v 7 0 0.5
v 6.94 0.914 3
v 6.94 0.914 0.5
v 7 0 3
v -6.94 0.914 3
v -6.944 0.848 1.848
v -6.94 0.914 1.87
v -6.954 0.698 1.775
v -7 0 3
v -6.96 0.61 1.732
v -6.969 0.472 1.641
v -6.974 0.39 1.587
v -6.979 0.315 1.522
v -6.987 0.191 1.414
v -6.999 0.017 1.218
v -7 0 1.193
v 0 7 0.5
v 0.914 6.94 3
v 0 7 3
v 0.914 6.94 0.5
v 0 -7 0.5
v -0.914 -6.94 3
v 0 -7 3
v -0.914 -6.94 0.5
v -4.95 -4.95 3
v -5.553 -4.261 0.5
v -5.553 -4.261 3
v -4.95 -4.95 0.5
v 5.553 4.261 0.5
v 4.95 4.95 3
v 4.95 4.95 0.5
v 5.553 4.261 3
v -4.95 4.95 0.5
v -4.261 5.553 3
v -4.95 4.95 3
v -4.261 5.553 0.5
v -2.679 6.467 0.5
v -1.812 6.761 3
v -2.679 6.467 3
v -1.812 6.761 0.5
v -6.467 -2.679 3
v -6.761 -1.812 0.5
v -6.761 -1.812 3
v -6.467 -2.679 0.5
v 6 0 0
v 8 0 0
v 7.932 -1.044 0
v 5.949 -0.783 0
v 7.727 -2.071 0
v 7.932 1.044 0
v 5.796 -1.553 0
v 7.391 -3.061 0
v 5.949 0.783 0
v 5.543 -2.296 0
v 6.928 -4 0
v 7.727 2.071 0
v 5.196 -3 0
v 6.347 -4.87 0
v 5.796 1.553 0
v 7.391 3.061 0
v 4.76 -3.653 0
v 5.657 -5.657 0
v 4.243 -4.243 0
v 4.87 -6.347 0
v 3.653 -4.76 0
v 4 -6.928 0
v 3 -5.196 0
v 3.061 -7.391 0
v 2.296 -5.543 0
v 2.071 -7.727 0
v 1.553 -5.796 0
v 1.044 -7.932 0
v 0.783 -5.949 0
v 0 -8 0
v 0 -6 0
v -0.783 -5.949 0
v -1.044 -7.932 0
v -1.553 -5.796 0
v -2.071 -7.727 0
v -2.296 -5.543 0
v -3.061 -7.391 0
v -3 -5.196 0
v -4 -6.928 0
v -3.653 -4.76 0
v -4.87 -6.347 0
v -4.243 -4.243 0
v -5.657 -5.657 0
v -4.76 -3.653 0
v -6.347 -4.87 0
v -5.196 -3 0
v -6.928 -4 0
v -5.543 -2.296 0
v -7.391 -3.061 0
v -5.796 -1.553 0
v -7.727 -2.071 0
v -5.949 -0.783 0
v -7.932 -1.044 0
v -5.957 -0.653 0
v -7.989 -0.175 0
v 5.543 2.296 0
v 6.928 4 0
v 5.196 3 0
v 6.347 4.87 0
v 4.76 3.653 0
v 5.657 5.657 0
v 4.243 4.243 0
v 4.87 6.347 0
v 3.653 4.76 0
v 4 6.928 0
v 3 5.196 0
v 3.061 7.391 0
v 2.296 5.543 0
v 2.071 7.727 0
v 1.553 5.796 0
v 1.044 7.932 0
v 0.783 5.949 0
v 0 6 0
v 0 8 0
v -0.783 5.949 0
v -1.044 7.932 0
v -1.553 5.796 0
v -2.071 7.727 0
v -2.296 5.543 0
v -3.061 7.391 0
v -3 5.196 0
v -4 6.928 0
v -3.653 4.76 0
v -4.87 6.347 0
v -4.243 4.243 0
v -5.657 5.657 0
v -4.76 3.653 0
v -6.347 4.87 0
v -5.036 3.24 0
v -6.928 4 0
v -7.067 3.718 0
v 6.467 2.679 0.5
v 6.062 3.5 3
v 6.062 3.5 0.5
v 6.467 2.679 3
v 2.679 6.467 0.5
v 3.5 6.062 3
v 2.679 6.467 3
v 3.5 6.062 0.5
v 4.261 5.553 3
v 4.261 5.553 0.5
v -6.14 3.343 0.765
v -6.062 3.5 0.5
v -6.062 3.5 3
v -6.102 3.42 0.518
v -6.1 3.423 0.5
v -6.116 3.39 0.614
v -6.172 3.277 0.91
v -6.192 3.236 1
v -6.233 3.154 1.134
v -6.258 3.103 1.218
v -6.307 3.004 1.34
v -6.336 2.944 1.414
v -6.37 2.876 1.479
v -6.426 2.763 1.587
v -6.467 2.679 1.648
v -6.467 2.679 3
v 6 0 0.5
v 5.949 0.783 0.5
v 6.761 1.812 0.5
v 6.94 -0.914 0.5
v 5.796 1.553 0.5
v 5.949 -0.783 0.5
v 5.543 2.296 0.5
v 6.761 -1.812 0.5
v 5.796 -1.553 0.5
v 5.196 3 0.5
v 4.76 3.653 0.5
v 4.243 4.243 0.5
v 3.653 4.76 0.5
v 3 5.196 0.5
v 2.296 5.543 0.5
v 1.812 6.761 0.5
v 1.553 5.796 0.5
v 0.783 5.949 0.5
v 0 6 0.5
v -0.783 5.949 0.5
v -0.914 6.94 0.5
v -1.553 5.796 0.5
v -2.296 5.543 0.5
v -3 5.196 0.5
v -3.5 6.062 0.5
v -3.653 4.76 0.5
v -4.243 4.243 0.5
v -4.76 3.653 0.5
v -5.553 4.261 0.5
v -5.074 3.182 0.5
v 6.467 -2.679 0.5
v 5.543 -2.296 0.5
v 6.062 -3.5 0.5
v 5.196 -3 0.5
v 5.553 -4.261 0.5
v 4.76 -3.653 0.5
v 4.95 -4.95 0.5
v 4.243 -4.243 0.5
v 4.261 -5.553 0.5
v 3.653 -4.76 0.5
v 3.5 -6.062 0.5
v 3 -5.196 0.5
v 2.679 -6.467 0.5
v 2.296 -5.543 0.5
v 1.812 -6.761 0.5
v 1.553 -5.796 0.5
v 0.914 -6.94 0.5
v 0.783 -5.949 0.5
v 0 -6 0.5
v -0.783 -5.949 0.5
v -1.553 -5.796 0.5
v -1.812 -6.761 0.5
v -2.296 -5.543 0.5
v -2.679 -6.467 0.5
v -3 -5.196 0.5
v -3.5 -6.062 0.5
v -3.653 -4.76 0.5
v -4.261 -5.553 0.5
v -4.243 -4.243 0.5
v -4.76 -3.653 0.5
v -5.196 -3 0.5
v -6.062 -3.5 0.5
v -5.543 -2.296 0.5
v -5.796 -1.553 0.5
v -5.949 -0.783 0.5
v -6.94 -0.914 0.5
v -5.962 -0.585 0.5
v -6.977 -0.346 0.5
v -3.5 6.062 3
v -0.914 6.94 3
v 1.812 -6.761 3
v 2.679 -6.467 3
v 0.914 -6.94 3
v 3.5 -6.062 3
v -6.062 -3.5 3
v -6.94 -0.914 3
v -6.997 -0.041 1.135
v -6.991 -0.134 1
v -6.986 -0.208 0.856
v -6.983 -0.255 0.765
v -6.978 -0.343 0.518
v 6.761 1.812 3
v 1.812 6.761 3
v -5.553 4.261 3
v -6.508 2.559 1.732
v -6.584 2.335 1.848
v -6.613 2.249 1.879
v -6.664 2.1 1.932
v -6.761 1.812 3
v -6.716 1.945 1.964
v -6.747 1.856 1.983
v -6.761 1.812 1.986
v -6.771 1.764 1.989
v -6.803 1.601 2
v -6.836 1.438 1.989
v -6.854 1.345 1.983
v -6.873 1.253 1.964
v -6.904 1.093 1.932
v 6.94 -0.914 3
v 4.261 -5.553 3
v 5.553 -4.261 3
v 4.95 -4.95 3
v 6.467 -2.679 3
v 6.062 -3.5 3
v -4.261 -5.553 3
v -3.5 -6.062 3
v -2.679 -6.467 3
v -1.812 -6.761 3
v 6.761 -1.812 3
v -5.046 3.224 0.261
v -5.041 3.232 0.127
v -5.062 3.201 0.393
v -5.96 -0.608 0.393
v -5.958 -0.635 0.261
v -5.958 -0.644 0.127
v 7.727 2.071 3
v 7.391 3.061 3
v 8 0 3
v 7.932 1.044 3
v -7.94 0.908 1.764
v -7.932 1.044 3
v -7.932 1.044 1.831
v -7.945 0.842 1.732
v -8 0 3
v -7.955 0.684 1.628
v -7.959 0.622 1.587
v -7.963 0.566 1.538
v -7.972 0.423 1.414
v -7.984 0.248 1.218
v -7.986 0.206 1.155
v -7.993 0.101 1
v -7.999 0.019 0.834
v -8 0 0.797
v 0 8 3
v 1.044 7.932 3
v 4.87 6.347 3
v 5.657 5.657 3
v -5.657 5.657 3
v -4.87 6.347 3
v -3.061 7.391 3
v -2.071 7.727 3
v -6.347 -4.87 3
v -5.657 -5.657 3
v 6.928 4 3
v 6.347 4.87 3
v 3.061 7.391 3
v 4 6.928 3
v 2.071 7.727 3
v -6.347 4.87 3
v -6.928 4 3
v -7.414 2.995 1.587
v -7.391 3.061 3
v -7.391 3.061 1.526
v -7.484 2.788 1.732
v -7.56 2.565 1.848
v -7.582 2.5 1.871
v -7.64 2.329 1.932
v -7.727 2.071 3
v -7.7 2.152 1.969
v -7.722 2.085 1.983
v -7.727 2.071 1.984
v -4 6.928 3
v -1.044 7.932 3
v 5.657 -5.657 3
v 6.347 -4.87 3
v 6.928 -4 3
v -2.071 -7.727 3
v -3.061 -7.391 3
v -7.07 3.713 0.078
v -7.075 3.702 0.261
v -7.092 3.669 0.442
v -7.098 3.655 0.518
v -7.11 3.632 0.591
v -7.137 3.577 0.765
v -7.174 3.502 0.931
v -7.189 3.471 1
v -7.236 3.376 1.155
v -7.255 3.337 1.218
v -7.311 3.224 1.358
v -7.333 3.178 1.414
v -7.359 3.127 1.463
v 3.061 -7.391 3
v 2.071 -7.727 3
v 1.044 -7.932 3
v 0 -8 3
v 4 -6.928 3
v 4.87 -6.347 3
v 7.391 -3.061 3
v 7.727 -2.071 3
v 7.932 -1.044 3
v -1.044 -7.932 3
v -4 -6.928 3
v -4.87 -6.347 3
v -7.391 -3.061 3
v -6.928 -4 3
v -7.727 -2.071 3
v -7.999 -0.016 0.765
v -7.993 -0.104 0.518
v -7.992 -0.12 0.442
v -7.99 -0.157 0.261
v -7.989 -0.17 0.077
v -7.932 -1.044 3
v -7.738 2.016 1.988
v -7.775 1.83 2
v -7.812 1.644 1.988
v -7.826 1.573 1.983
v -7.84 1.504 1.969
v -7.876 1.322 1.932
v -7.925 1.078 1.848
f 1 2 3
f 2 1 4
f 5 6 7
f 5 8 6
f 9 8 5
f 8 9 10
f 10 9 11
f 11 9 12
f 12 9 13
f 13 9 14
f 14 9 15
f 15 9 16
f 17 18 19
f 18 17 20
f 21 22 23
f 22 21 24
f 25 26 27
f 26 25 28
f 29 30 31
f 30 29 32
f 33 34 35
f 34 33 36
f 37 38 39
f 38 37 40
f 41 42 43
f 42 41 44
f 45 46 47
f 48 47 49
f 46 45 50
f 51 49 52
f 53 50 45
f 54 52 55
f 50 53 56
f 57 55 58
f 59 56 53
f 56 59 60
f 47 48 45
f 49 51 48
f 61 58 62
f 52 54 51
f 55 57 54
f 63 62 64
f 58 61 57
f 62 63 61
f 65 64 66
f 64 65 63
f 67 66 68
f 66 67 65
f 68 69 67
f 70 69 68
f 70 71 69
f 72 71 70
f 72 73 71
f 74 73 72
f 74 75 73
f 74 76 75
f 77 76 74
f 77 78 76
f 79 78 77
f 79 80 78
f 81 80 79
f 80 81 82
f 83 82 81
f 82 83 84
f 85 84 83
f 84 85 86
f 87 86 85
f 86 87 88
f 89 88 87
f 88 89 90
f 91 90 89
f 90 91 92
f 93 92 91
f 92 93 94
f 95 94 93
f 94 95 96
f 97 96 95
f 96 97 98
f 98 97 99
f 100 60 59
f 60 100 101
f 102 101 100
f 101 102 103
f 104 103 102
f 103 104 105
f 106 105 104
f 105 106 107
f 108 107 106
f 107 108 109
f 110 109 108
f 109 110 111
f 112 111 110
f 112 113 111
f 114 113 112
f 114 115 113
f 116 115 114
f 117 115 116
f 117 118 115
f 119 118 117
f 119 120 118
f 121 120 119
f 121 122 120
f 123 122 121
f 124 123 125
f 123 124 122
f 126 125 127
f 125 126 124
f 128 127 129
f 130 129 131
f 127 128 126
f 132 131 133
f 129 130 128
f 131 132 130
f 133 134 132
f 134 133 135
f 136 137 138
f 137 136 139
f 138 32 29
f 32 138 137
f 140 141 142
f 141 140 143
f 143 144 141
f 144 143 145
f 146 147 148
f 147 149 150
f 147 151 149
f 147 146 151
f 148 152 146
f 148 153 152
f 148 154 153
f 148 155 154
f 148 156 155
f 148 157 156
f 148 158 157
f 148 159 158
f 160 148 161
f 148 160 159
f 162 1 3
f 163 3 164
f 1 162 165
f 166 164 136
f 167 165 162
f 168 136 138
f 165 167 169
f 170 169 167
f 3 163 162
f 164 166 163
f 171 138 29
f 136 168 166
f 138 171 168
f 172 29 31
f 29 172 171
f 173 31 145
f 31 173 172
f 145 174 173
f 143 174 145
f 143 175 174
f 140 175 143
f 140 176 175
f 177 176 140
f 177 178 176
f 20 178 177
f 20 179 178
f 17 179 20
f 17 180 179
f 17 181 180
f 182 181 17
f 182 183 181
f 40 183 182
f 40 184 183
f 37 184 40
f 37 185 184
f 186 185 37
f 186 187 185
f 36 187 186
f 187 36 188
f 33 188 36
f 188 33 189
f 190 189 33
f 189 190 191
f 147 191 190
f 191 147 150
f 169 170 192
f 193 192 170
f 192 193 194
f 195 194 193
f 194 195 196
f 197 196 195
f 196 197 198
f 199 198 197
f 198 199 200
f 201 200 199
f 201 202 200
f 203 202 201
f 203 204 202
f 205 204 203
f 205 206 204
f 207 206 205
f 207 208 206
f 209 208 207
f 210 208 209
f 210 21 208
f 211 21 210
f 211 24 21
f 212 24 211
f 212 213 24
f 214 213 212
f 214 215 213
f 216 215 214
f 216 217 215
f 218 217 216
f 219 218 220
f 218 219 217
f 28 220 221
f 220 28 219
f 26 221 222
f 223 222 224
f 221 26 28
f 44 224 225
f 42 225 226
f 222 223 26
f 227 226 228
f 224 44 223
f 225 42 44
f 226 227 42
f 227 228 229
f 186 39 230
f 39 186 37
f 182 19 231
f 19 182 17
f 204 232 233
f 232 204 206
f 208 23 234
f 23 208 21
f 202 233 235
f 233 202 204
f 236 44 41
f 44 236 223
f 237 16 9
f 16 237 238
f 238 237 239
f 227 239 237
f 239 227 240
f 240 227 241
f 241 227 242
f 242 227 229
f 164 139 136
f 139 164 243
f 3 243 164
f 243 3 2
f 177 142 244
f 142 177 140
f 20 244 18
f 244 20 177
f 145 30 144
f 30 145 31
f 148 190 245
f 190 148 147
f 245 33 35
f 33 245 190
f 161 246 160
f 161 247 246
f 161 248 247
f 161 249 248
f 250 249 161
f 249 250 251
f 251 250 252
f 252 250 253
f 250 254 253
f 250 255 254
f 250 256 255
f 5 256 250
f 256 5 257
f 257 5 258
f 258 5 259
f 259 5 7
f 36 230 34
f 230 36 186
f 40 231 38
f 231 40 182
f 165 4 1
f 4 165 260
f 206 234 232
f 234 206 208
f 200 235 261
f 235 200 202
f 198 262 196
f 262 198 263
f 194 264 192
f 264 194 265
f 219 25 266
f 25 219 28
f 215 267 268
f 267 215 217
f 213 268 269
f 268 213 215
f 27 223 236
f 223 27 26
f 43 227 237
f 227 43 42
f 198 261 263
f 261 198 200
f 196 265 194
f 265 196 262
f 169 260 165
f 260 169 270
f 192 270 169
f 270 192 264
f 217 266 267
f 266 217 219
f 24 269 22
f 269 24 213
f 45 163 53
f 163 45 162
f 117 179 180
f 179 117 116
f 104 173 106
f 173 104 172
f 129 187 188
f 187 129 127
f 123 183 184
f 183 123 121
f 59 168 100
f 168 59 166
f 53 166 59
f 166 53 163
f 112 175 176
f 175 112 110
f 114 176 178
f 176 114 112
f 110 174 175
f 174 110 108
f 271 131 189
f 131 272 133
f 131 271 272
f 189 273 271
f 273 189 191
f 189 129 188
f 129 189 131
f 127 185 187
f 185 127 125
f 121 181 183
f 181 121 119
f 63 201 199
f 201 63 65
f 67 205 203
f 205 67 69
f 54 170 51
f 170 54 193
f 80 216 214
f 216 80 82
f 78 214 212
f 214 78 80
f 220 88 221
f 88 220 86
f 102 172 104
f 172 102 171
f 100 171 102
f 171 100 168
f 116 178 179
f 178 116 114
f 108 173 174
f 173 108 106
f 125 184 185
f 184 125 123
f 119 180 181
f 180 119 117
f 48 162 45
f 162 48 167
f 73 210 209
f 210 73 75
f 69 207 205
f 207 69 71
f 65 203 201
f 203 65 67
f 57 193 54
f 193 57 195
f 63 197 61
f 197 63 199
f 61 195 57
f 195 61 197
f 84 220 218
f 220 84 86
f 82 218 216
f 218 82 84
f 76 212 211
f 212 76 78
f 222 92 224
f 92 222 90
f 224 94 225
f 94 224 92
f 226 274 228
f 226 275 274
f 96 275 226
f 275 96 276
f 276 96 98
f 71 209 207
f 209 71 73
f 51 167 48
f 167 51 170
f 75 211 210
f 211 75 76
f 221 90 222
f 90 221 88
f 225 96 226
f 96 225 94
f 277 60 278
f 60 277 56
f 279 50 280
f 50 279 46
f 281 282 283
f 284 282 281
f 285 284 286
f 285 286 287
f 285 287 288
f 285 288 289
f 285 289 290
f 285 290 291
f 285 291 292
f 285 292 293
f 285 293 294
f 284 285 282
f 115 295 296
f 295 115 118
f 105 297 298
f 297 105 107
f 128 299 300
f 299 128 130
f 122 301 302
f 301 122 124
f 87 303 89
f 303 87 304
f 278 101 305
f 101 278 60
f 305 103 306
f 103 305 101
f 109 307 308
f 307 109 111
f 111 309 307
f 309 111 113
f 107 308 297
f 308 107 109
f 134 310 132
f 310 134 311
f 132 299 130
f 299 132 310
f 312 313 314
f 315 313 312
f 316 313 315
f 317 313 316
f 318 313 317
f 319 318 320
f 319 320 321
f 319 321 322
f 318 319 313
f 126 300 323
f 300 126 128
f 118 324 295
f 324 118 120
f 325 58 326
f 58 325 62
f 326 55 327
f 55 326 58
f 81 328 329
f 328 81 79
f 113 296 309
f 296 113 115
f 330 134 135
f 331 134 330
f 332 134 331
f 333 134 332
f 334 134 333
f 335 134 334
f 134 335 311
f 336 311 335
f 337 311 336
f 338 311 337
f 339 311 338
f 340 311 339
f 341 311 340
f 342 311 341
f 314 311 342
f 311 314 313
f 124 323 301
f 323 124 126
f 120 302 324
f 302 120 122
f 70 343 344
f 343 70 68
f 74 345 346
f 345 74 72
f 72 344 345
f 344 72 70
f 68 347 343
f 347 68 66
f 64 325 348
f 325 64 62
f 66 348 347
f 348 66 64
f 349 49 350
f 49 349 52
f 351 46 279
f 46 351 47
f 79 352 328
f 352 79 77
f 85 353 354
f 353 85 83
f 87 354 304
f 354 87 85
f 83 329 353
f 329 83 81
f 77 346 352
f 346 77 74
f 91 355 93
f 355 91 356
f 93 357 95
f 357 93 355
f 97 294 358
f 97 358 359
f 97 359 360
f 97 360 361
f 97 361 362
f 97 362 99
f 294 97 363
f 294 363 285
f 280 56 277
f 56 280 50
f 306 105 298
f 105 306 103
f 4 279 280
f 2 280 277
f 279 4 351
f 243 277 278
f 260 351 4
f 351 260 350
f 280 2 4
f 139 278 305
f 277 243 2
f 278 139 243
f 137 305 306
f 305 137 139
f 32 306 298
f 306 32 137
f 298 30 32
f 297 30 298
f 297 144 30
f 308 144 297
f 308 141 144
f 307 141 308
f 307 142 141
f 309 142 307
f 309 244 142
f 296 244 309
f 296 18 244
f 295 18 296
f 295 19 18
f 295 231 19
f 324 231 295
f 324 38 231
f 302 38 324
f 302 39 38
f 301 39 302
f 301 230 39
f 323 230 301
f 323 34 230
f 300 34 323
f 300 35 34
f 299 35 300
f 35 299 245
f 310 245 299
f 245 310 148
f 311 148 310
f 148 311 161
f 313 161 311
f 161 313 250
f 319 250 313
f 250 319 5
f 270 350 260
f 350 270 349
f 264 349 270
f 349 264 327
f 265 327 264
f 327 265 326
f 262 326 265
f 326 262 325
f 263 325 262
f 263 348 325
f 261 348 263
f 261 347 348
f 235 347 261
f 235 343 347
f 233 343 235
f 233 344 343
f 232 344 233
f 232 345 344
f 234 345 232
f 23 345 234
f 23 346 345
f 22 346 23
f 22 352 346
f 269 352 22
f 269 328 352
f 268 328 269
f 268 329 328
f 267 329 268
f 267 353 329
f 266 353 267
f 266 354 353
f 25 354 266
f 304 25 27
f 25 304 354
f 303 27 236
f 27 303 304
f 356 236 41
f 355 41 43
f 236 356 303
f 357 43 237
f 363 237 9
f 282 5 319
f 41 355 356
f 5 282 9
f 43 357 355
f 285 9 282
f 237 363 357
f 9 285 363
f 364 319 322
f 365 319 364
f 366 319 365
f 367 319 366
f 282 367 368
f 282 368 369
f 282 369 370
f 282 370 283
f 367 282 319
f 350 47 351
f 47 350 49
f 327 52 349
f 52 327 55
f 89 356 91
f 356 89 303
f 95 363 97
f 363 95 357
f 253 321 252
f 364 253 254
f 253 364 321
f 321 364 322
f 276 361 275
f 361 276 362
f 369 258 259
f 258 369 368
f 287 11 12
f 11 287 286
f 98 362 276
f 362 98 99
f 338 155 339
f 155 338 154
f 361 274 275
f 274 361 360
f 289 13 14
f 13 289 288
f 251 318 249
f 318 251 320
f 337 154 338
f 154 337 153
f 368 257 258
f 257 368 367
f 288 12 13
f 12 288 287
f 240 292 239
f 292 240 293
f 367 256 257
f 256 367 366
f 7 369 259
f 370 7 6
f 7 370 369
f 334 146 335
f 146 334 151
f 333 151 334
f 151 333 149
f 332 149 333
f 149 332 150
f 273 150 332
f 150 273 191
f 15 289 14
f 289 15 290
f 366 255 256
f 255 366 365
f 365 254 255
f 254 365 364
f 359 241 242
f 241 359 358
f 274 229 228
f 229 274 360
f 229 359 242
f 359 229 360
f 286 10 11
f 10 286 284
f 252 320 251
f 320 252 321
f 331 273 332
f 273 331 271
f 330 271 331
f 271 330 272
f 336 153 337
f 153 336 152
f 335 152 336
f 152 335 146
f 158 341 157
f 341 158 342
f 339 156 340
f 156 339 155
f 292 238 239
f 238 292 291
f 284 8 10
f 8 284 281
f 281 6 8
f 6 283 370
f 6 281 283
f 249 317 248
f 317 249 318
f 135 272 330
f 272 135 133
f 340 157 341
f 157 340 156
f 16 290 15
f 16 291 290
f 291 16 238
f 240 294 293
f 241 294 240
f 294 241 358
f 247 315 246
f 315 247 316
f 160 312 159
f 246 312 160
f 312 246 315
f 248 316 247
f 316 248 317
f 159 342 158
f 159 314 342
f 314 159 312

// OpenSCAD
// file: ../build_environments.scad
// build_environments.scad: modules to build level sections
//

module pool(diameter=10.0, wall_height=2.0, step_width=3.0, connections=[])
{
    difference() {
        union() {
        difference() {
            cylinder(h=0.5,r1=diameter+step_width,r2=diameter+step_width,$fn=48);
            translate([0,0,-0.1])
                cylinder(h=0.7,r1=diameter,r2=diameter,$fn=48);
        }
        difference() {
            cylinder(h=wall_height,r1=diameter+step_width+1.0,r2=diameter+step_width+1.0,$fn=48);
            translate([0,0,-0.1])
                cylinder(h=wall_height+0.2,r1=diameter+step_width,r2=diameter+step_width,$fn=48);
        }
        }
    
        for (c = connections)
        {
            rotate([0,90,0]) {
                angle = atan2(c[1],c[0]);
                rotate([-angle,0,0]) {
                    cylinder(h=diameter+5.0,r1=c[2],r2=c[2],$fn=48);
                }
            }
        }
    }
}

module straight(length=10.0, width=2.0, dy1=0.0, dy2=0.0, dz=0.0)
{
    dims = [0, 0, 0, 0, 0, (dz/length)];
    matrix = [
        [ 1, dims[0], dims[1], 0 ],
        [ dims[2], 1, dims[4], 0 ],
        [ dims[5], dims[3], 1, 0 ],
        [ 0, 0, 0, 1 ]
    ];
    multmatrix(matrix)
    difference() {
        translate([dy1,0,0])
        union() {
            rotate([0,90,0]) {
                difference() {
                    cylinder(h=(length-dy1-dy2),r1=width+1.0,r2=width+1.0,$fn=24);
                    translate([0,0,-0.1])
                        cylinder(h=(length-dy1-dy2+0.2),r1=width,r2=width,$fn=24);
                }
                difference() {
                    cylinder(h=1.0,r1=width+2.0,r2=width+2.0,$fn=24);
                    translate([0,0,-0.1])
                        cylinder(h=1.2,r1=width,r2=width,$fn=24);
                }
                translate([0,0,(length-dy1-dy2)-1.0]) {
                    difference() {
                        cylinder(h=1.0,r1=width+2.0,r2=width+2.0,$fn=24);
                        translate([0,0,-0.1])
                            cylinder(h=1.2,r1=width,r2=width,$fn=24);
                    }
                }
            }
        }
        translate([0,0,-(2*width+4.0)/2])
            cube([3*length,3*length,2*width+4.0],center=true);
    }
}

module curve(p0=[0,0], center=[0,0], dir=1, angle=0.0, width=2.0)
{
    radius = sqrt((p0[0]-center[0])*(p0[0]-center[0]) + (p0[1]-center[1])*(p0[1]-center[1]));
    if (dir == 0) {
        difference() {
            rotate([0,0,-90])
            difference() {
                rotate_extrude(angle = angle, convexity = 10, $fn=32)
                    translate([radius, 0, 0])
                        circle(r = width+1.0,$fn=24);
                rotate([0,0,-1.0])
                    rotate_extrude(angle = angle+2.0, convexity = 10, $fn=32)
                        translate([radius, 0, 0])
                            circle(r = width,$fn=24);
            }
            translate([0,0,-(2*width+4.0)/2])
                cube([5*radius,5*radius,2*width+4.0],center=true);
        }
    }
    else {
        difference() {
            rotate([0,0,90])
            difference() {
                rotate_extrude(angle = -angle, convexity = 10, $fn=32)
                    translate([radius, 0, 0])
                        circle(r = width+1.0,$fn=24);
                rotate([0,0,1.0])
                    rotate_extrude(angle = -angle-2.0, convexity = 10, $fn=32)
                        translate([radius, 0, 0])
                            circle(r = width,$fn=24);
            }
            translate([0,0,-(2*width+4.0)/2])
                cube([5*radius,5*radius,2*width+4.0],center=true);
        }
    }

}

// test pool
//pool(diameter=12.0000, wall_height=3.0000, step_width=3.0000, connections=[[0.0000,-26.0000,2.0000], [23.6074,0.0000,2.0000]]);

// test straight, slope
//straight(length=26.0000, width=2.0000, dy1=11.8322, dy2=6.7082, dz=0.0000);
//straight(length=29.1549, width=12.0000, dy1=0.0000, dy2=0.0000, dz=-15.0000);

// test curve
//curve(p0=[23.6074, 0.0000], center=[23.6074, 5.0000], dir=0, angle=60.1011, width=2.0000);
//curve(p0=[33.6426, 12.4219], center=[37.9771, 9.9295], dir=1, angle=120.4627, width=2.0000);
// main file
use <../build_environments.scad>;
pool(diameter=6.0000, wall_height=3.0000, step_width=1.0000, connections=[[-17.0000,4.0000,2.0000]]);
